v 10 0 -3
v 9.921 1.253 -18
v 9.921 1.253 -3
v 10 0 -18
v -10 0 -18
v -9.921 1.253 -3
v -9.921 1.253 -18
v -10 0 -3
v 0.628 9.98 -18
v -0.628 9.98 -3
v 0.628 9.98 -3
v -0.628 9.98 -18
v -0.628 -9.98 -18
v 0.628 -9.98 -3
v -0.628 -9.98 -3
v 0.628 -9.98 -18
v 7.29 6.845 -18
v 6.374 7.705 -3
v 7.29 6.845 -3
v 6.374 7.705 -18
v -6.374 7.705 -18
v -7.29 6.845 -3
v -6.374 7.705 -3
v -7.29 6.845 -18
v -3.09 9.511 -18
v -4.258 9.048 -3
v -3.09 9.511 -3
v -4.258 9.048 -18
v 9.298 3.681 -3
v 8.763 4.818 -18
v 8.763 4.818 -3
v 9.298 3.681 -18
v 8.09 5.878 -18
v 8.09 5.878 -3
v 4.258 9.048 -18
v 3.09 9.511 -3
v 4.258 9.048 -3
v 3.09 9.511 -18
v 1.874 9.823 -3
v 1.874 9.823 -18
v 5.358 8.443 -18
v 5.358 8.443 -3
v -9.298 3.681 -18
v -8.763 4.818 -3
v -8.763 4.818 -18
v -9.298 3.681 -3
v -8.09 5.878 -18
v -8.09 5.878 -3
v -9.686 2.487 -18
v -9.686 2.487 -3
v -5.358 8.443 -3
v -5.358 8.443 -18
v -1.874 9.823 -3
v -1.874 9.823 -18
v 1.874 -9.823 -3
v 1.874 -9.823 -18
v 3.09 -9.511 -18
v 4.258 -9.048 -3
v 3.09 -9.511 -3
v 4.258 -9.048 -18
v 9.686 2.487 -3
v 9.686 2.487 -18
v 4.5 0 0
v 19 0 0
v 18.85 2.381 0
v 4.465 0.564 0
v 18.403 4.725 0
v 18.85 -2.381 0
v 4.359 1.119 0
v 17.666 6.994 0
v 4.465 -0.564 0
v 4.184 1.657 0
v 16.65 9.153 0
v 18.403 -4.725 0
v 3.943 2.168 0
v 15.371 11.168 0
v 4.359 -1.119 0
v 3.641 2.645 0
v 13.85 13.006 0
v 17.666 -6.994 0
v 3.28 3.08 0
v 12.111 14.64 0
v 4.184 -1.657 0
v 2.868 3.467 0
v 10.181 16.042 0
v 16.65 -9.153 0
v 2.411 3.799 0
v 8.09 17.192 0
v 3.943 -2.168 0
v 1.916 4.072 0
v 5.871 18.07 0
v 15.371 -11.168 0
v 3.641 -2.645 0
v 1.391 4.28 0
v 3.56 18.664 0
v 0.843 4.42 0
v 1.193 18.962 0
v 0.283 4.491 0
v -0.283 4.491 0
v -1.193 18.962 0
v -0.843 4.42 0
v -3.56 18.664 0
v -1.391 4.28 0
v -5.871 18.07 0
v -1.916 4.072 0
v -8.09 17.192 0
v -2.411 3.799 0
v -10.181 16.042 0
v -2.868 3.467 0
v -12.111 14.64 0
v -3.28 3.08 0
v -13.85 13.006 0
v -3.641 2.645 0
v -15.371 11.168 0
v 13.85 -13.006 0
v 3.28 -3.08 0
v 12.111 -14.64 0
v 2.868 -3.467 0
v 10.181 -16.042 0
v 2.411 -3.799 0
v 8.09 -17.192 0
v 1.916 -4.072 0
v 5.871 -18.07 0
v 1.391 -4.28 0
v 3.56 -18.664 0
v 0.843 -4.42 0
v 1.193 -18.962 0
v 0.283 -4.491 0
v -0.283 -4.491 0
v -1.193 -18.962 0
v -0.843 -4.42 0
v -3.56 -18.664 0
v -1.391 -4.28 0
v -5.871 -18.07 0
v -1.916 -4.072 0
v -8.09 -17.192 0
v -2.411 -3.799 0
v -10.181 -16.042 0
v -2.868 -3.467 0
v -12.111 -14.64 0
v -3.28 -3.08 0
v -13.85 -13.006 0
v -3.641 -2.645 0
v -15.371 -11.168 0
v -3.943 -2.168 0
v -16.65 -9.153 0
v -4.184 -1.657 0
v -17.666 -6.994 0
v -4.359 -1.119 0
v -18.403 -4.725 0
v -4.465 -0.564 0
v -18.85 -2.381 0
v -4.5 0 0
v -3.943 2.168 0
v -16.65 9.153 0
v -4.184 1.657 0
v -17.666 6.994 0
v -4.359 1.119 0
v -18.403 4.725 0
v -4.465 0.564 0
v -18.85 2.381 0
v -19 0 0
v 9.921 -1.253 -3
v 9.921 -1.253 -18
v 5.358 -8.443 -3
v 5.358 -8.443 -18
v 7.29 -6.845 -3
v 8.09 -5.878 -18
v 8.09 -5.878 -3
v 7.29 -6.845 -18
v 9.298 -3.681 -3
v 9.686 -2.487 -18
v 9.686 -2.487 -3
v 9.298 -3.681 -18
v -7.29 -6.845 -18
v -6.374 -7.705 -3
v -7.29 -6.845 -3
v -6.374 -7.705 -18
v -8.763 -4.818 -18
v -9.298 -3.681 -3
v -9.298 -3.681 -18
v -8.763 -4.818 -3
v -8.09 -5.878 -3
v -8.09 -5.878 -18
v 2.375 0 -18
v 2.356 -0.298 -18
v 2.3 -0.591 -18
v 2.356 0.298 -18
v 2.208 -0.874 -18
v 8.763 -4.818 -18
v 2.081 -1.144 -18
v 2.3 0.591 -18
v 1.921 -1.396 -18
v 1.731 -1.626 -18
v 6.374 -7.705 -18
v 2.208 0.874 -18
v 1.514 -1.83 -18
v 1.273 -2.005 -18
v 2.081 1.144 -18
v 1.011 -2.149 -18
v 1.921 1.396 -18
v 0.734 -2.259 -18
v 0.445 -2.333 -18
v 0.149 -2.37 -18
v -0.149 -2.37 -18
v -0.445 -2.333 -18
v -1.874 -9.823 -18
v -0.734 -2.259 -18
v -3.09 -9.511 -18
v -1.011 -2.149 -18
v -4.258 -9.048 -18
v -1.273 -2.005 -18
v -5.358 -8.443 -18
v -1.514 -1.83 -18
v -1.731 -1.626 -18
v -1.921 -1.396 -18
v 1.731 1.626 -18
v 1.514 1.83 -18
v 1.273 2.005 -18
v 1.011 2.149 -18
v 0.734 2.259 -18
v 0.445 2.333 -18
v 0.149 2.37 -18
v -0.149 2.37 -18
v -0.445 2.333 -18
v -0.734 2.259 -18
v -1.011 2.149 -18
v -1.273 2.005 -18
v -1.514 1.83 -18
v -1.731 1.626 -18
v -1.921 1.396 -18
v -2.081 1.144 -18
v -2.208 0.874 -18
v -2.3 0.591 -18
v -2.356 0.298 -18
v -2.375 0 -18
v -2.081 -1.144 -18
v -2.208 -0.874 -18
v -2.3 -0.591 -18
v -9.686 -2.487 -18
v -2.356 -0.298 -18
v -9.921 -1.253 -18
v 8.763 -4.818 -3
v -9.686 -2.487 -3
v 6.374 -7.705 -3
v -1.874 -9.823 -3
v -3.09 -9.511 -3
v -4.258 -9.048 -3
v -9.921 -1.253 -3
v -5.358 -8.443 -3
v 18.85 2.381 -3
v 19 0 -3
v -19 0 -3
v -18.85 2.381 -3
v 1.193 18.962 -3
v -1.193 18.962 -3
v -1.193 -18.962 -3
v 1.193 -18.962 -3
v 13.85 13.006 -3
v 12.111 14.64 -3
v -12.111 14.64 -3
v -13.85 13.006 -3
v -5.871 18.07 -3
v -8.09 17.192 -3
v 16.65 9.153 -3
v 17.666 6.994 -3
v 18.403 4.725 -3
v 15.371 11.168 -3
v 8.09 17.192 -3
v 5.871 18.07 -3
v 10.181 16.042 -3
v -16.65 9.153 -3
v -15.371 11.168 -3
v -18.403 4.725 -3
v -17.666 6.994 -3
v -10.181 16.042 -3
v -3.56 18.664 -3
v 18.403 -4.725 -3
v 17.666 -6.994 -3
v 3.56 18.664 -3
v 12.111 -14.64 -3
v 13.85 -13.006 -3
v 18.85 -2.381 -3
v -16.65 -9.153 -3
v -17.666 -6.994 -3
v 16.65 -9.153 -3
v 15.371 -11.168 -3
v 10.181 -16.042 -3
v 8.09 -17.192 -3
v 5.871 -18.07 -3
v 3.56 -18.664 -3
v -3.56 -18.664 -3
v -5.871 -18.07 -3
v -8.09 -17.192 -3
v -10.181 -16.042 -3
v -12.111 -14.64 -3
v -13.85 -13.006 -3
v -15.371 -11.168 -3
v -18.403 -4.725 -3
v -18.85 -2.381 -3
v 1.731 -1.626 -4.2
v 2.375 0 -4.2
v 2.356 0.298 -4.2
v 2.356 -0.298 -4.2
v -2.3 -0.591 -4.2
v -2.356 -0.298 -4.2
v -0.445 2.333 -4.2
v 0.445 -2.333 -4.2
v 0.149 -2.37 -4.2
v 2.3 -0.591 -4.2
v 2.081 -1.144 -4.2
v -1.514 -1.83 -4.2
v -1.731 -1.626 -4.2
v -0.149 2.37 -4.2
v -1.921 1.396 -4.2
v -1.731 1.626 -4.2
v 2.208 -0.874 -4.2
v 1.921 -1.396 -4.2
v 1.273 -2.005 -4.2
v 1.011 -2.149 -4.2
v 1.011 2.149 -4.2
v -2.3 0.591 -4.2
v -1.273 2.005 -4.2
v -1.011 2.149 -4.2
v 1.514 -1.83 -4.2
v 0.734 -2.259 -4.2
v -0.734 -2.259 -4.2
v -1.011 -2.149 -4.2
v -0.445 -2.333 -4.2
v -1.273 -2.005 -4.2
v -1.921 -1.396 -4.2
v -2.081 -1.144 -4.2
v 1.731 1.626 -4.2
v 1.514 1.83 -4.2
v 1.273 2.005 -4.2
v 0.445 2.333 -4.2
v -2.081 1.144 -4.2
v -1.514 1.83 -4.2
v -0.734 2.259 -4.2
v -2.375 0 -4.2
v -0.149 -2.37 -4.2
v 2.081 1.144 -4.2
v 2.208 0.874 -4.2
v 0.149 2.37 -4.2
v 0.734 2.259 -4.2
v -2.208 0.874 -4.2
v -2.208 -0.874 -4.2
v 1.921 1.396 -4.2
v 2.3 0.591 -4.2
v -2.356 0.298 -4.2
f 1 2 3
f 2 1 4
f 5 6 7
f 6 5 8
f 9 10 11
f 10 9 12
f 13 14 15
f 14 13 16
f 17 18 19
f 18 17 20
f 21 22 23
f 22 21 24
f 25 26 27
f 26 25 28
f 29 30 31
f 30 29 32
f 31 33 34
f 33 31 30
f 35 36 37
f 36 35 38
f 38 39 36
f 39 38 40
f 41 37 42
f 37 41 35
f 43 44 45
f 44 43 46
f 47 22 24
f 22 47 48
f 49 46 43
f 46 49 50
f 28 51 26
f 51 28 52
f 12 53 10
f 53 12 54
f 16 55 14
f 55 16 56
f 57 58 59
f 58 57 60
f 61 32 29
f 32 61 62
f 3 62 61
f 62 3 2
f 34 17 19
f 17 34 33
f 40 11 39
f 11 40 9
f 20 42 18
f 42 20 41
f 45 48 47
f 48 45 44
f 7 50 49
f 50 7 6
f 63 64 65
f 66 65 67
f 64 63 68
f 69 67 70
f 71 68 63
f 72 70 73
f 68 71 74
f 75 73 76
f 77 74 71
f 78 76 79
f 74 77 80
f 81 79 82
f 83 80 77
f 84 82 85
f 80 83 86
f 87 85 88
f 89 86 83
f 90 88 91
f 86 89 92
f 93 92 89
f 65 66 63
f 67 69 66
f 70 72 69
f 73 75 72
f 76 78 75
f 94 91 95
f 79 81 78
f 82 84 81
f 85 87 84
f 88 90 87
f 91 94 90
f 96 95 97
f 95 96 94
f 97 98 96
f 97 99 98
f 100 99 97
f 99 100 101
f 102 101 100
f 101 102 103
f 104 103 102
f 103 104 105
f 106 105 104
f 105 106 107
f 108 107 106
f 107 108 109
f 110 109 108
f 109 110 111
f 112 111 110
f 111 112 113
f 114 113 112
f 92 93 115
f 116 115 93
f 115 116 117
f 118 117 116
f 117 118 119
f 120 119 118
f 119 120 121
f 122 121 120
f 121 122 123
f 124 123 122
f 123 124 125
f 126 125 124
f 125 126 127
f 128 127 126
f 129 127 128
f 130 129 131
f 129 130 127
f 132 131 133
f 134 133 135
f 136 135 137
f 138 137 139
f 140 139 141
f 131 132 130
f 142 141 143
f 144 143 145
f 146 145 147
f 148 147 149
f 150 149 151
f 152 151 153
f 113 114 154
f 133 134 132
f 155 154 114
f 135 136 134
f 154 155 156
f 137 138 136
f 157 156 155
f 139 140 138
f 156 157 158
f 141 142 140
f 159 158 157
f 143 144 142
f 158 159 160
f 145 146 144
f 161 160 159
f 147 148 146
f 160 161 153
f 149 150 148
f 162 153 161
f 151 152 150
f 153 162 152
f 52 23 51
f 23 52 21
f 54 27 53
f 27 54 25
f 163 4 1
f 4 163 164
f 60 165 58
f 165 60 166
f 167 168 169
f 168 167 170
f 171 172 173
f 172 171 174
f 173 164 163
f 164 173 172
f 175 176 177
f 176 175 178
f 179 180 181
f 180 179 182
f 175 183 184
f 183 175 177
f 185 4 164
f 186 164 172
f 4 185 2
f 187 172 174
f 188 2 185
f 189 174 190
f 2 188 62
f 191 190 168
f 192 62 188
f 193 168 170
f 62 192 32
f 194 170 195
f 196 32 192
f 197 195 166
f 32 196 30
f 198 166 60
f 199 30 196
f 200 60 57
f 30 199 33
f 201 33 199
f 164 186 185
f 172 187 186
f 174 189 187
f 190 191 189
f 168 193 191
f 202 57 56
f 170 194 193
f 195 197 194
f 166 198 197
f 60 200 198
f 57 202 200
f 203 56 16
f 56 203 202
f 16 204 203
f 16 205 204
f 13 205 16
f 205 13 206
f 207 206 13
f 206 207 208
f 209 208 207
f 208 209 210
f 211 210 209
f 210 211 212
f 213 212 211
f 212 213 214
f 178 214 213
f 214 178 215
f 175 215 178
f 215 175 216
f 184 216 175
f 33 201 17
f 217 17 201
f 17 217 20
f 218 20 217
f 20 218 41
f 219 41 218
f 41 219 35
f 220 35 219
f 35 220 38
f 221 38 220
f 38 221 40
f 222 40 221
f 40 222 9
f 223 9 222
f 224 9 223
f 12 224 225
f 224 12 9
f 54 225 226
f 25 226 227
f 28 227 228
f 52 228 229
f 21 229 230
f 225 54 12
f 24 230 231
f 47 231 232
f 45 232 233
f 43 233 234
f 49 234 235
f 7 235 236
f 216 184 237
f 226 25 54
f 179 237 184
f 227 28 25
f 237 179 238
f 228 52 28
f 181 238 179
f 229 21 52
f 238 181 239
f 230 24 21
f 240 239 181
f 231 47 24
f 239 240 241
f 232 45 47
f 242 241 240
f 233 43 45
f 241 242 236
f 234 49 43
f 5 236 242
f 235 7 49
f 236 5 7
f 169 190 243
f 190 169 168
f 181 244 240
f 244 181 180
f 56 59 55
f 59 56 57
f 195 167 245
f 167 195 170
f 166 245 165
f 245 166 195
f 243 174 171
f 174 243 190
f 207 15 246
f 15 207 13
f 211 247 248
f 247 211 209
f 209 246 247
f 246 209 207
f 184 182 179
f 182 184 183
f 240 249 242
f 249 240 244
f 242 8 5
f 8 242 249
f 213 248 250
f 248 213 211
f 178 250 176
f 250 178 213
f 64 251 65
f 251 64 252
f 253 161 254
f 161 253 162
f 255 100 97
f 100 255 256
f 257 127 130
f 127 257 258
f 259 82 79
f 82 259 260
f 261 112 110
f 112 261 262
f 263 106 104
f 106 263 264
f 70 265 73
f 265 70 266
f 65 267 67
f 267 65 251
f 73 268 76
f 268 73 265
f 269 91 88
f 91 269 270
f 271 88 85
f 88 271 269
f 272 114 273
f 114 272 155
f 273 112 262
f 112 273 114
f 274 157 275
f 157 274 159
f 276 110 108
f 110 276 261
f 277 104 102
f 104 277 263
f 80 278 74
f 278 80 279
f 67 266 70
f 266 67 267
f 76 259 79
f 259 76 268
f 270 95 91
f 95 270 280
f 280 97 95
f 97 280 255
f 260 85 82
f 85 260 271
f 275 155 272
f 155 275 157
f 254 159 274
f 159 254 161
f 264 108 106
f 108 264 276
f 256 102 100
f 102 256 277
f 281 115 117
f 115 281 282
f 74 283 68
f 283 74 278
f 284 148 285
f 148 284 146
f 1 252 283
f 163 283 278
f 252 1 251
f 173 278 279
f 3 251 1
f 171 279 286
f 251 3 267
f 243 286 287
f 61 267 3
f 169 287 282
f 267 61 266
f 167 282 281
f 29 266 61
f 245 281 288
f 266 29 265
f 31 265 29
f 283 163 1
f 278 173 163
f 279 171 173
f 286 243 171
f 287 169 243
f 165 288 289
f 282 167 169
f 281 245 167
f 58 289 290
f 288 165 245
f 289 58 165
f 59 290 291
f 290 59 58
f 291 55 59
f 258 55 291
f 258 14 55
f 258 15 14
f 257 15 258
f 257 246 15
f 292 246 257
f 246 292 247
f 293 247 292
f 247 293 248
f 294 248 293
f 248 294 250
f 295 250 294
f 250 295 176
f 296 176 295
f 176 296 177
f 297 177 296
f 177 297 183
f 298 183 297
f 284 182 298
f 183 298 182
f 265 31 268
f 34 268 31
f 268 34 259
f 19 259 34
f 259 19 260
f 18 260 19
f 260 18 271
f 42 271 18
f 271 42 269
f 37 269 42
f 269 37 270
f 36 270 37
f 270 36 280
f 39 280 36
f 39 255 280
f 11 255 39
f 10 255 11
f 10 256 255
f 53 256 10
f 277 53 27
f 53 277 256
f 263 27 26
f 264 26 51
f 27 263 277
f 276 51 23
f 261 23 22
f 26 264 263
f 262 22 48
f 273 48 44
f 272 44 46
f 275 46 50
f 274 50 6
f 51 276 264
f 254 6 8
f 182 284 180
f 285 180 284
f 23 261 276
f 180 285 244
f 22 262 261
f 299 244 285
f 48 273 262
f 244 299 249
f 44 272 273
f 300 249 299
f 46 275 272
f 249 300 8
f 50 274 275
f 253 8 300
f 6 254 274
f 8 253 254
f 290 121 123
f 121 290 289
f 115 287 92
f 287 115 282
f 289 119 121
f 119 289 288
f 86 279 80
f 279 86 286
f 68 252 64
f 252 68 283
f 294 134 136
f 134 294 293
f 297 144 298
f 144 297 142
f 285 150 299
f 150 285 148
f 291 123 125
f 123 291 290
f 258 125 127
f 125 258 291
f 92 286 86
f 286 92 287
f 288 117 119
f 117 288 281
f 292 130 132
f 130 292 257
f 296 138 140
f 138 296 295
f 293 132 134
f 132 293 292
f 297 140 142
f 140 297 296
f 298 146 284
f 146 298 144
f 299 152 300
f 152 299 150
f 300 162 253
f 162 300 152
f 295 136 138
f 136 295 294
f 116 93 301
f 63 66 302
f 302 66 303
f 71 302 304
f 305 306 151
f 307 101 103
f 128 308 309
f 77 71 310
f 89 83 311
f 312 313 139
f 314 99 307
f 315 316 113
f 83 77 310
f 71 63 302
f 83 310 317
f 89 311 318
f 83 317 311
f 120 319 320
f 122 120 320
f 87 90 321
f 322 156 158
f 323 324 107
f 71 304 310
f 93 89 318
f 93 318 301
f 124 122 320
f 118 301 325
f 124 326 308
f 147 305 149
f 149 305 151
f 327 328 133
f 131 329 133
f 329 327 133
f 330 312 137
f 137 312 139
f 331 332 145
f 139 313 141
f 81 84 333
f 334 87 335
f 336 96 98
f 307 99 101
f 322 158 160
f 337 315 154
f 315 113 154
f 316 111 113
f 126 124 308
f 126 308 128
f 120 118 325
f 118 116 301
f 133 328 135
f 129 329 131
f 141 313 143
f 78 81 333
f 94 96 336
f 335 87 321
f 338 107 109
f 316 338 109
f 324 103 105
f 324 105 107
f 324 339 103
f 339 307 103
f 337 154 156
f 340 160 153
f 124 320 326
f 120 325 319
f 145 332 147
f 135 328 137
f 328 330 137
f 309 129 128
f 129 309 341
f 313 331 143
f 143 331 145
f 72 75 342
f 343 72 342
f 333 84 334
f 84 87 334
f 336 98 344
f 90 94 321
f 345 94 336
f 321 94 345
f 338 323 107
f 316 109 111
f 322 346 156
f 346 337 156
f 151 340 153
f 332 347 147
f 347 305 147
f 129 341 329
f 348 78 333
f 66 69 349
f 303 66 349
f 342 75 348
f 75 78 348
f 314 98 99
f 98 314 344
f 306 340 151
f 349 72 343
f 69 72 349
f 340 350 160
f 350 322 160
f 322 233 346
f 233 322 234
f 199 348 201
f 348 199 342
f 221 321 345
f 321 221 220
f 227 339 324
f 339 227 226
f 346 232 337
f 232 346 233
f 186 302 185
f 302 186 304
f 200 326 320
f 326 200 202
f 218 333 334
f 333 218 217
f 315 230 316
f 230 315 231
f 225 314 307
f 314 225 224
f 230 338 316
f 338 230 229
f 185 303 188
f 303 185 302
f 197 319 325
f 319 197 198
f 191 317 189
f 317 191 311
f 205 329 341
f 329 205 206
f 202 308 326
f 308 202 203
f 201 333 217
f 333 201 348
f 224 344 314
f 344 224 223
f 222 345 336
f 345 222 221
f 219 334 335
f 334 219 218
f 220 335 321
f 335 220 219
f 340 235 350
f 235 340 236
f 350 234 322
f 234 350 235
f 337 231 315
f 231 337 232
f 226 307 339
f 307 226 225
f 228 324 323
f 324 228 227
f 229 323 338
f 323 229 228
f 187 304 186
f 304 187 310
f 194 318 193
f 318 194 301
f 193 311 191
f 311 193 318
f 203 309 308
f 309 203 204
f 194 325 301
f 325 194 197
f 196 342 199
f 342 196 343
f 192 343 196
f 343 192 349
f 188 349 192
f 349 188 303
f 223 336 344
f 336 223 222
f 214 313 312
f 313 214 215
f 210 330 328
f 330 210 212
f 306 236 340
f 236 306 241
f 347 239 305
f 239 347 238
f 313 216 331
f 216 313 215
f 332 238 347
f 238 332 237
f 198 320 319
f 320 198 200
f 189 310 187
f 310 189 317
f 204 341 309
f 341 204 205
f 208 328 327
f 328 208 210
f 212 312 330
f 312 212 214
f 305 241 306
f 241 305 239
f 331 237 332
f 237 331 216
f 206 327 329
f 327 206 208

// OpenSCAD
$fn = 50;


difference() {
	union() {
		translate(v = [0, 0, -18.0000000000]) {
			cylinder(h = 18, r = 10.0000000000);
		}
		translate(v = [0, 0, -3.0000000000]) {
			cylinder(h = 3, r = 19.0000000000);
		}
	}
	union() {
		translate(v = [0, 0, 0]) {
			rotate(a = [0, 0, 0]) {
				difference() {
					union() {
						#translate(v = [0, 0, -18.0000000000]) {
							cylinder(h = 18, r = 2.2500000000);
						}
						#translate(v = [0, 0, -4.2000000000]) {
							cylinder(h = 4.2000000000, r1 = 2.3750000000, r2 = 4.5000000000);
						}
						#translate(v = [0, 0, -18.0000000000]) {
							cylinder(h = 18, r = 2.3750000000);
						}
						#translate(v = [0, 0, -18.0000000000]) {
							cylinder(h = 18, r = 2.2500000000);
						}
					}
					union();
				}
			}
		}
	}
}
